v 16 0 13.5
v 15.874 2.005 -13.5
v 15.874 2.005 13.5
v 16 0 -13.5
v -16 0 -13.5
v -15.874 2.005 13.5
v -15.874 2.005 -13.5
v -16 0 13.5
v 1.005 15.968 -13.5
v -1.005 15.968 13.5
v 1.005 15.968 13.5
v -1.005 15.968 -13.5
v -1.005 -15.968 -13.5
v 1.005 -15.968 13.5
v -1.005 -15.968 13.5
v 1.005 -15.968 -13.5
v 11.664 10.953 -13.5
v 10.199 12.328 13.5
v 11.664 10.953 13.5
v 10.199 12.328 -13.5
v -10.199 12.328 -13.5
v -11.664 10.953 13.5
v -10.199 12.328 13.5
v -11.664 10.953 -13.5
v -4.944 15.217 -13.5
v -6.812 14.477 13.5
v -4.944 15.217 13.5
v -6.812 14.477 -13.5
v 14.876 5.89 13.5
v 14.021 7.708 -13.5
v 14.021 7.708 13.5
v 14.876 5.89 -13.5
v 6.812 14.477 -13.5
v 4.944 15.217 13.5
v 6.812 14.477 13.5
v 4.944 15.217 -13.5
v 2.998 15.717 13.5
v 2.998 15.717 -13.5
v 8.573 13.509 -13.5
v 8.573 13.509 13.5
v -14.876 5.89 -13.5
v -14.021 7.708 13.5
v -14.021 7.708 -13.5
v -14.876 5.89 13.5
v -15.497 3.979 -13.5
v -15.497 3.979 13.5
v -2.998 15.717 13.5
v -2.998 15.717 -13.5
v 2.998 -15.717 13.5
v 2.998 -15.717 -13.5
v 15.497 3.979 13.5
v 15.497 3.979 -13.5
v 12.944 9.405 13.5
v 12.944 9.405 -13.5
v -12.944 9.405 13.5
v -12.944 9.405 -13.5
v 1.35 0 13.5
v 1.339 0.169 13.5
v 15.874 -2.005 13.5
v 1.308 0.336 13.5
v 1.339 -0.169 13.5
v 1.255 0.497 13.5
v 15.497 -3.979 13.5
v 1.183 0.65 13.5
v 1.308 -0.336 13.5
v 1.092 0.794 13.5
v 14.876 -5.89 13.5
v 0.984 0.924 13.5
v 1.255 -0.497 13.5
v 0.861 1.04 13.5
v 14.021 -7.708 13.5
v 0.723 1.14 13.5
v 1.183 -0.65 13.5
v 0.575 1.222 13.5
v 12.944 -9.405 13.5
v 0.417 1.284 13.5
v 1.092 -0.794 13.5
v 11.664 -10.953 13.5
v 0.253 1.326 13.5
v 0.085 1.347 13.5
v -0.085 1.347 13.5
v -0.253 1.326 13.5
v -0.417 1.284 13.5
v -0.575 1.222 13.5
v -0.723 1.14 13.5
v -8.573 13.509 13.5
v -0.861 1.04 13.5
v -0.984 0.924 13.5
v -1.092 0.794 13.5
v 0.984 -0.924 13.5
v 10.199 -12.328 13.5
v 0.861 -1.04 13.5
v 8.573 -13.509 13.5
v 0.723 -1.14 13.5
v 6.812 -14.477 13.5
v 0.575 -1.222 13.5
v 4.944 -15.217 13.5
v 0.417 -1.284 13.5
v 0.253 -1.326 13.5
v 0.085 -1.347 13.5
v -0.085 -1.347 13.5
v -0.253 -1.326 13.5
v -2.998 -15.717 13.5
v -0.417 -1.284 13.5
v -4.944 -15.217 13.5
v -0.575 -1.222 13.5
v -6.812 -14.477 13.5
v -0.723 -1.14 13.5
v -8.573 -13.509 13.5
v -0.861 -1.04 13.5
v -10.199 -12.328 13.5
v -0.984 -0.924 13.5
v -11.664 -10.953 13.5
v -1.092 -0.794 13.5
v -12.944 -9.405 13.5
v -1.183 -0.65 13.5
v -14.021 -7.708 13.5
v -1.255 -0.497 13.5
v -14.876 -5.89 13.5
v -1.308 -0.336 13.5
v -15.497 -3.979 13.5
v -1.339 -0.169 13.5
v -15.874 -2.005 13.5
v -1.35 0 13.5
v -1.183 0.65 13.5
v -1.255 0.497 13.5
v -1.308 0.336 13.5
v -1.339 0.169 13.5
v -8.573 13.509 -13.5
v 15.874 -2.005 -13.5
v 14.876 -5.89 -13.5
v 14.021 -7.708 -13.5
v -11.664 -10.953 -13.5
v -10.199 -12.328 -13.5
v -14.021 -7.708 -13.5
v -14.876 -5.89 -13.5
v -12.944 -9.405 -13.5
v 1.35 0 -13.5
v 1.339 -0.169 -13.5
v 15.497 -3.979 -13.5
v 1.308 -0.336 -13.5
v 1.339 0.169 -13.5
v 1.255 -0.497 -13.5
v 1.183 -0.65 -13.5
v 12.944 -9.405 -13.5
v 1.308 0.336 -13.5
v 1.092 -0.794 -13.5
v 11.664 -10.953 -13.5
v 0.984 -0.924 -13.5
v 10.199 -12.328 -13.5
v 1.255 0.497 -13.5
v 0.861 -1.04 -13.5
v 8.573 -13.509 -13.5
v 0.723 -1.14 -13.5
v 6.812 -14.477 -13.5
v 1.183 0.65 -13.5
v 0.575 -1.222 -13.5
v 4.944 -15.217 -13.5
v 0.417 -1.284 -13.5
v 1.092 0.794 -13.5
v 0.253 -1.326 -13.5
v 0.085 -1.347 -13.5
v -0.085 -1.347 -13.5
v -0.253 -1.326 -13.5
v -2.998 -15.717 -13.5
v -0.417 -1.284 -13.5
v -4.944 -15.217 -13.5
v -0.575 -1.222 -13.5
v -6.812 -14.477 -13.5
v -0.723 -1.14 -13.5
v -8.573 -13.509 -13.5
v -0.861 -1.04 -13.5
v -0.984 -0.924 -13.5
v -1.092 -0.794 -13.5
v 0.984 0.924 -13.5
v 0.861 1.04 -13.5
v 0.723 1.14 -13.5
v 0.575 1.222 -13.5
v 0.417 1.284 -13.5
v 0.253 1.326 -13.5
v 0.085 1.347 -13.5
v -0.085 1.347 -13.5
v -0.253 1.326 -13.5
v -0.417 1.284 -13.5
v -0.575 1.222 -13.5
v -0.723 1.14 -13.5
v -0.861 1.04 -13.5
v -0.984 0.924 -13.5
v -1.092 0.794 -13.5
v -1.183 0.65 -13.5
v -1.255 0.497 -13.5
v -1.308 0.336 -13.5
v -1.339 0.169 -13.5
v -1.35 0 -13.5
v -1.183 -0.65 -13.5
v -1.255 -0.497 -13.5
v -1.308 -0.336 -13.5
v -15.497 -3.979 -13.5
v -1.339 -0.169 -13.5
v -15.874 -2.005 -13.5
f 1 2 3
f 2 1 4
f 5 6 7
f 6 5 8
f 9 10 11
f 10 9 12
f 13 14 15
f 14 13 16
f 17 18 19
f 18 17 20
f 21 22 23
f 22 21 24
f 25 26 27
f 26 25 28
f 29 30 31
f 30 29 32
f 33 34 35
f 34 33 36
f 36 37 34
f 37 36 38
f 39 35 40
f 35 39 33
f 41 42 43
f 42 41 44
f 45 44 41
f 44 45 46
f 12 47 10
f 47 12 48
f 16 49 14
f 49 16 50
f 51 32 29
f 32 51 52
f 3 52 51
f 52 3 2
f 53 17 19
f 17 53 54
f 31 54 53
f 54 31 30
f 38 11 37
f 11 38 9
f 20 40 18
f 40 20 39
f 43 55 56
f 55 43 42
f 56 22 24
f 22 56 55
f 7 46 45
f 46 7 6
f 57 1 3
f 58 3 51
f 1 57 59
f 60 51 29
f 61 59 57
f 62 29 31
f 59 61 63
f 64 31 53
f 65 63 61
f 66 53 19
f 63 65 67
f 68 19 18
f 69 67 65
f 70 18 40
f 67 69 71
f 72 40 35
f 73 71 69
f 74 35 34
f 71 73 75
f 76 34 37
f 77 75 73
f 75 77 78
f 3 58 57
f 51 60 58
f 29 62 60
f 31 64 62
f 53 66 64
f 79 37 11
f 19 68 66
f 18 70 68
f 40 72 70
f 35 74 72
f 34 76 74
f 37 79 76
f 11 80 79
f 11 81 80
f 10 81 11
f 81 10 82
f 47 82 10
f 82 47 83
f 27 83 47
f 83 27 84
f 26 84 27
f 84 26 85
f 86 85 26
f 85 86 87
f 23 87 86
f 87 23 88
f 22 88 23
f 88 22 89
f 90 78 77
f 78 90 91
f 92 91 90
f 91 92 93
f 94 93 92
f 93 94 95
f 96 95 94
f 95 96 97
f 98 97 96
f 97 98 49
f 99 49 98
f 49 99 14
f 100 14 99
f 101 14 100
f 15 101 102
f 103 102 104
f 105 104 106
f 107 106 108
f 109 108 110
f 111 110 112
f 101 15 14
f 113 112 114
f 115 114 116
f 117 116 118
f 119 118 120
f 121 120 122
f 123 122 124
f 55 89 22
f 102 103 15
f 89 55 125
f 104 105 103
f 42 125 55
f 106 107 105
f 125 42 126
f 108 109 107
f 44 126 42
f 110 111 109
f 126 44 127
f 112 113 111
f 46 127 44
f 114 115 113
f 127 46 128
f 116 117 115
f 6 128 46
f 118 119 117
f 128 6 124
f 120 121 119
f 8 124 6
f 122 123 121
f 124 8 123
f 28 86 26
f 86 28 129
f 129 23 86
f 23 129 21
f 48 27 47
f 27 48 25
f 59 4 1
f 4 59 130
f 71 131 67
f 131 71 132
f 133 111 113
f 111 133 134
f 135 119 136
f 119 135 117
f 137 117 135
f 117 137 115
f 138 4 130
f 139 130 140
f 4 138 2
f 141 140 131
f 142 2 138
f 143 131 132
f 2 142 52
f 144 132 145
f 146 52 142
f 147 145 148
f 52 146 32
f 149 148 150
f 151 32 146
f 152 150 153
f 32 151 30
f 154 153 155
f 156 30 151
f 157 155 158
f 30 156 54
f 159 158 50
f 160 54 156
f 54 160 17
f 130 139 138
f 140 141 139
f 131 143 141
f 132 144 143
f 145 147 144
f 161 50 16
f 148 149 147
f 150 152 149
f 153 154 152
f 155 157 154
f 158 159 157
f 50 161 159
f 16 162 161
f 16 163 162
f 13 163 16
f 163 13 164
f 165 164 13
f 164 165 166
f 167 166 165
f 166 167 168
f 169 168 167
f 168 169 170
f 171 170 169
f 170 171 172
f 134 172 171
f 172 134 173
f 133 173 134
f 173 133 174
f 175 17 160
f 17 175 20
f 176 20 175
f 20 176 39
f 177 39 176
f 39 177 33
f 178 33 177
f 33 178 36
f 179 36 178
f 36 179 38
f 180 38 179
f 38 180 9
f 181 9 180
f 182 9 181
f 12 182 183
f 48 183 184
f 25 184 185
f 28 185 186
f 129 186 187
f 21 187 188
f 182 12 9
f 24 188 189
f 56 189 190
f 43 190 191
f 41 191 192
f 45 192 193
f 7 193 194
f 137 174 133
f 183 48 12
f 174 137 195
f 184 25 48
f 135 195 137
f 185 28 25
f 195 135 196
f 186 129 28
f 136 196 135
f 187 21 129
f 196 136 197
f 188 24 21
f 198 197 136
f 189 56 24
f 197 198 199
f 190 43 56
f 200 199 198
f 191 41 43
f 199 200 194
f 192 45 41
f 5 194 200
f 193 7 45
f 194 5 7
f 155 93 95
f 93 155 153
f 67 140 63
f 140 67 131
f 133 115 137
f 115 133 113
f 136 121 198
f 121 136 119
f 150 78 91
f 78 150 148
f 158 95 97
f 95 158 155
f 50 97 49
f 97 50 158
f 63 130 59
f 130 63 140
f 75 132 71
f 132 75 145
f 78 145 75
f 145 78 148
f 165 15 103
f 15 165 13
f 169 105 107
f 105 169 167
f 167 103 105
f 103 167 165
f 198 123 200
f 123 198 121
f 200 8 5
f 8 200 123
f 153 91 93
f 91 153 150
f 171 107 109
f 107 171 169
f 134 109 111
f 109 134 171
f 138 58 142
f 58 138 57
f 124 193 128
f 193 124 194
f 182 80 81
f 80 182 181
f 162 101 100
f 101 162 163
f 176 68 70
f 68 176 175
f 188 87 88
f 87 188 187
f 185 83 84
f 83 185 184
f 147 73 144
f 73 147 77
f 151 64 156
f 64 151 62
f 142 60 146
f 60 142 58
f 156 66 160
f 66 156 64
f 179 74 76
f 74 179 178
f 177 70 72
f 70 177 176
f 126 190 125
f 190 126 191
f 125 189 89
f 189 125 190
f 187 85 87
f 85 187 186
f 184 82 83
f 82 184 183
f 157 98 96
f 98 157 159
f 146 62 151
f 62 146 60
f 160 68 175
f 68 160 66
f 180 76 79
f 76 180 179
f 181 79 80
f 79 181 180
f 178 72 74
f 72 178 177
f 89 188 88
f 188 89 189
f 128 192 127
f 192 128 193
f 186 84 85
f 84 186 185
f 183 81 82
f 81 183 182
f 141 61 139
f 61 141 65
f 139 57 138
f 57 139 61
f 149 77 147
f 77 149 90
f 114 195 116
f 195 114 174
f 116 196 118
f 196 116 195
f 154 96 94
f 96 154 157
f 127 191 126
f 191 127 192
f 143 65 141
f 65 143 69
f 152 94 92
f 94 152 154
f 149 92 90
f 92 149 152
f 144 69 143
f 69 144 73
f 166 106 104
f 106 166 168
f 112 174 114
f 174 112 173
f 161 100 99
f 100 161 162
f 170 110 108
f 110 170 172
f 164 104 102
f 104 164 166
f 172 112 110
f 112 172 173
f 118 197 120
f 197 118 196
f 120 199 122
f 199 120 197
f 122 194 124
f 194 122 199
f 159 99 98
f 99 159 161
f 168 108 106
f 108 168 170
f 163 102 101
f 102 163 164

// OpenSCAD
$fn = 50;


difference() {
	union() {
		translate(v = [0, 0, -13.5000000000]) {
			cylinder(h = 27, r = 16.0000000000);
		}
	}
	union() {
		translate(v = [0, 0, -100.0000000000]) {
			cylinder(h = 200, r = 1.3500000000);
		}
	}
}
